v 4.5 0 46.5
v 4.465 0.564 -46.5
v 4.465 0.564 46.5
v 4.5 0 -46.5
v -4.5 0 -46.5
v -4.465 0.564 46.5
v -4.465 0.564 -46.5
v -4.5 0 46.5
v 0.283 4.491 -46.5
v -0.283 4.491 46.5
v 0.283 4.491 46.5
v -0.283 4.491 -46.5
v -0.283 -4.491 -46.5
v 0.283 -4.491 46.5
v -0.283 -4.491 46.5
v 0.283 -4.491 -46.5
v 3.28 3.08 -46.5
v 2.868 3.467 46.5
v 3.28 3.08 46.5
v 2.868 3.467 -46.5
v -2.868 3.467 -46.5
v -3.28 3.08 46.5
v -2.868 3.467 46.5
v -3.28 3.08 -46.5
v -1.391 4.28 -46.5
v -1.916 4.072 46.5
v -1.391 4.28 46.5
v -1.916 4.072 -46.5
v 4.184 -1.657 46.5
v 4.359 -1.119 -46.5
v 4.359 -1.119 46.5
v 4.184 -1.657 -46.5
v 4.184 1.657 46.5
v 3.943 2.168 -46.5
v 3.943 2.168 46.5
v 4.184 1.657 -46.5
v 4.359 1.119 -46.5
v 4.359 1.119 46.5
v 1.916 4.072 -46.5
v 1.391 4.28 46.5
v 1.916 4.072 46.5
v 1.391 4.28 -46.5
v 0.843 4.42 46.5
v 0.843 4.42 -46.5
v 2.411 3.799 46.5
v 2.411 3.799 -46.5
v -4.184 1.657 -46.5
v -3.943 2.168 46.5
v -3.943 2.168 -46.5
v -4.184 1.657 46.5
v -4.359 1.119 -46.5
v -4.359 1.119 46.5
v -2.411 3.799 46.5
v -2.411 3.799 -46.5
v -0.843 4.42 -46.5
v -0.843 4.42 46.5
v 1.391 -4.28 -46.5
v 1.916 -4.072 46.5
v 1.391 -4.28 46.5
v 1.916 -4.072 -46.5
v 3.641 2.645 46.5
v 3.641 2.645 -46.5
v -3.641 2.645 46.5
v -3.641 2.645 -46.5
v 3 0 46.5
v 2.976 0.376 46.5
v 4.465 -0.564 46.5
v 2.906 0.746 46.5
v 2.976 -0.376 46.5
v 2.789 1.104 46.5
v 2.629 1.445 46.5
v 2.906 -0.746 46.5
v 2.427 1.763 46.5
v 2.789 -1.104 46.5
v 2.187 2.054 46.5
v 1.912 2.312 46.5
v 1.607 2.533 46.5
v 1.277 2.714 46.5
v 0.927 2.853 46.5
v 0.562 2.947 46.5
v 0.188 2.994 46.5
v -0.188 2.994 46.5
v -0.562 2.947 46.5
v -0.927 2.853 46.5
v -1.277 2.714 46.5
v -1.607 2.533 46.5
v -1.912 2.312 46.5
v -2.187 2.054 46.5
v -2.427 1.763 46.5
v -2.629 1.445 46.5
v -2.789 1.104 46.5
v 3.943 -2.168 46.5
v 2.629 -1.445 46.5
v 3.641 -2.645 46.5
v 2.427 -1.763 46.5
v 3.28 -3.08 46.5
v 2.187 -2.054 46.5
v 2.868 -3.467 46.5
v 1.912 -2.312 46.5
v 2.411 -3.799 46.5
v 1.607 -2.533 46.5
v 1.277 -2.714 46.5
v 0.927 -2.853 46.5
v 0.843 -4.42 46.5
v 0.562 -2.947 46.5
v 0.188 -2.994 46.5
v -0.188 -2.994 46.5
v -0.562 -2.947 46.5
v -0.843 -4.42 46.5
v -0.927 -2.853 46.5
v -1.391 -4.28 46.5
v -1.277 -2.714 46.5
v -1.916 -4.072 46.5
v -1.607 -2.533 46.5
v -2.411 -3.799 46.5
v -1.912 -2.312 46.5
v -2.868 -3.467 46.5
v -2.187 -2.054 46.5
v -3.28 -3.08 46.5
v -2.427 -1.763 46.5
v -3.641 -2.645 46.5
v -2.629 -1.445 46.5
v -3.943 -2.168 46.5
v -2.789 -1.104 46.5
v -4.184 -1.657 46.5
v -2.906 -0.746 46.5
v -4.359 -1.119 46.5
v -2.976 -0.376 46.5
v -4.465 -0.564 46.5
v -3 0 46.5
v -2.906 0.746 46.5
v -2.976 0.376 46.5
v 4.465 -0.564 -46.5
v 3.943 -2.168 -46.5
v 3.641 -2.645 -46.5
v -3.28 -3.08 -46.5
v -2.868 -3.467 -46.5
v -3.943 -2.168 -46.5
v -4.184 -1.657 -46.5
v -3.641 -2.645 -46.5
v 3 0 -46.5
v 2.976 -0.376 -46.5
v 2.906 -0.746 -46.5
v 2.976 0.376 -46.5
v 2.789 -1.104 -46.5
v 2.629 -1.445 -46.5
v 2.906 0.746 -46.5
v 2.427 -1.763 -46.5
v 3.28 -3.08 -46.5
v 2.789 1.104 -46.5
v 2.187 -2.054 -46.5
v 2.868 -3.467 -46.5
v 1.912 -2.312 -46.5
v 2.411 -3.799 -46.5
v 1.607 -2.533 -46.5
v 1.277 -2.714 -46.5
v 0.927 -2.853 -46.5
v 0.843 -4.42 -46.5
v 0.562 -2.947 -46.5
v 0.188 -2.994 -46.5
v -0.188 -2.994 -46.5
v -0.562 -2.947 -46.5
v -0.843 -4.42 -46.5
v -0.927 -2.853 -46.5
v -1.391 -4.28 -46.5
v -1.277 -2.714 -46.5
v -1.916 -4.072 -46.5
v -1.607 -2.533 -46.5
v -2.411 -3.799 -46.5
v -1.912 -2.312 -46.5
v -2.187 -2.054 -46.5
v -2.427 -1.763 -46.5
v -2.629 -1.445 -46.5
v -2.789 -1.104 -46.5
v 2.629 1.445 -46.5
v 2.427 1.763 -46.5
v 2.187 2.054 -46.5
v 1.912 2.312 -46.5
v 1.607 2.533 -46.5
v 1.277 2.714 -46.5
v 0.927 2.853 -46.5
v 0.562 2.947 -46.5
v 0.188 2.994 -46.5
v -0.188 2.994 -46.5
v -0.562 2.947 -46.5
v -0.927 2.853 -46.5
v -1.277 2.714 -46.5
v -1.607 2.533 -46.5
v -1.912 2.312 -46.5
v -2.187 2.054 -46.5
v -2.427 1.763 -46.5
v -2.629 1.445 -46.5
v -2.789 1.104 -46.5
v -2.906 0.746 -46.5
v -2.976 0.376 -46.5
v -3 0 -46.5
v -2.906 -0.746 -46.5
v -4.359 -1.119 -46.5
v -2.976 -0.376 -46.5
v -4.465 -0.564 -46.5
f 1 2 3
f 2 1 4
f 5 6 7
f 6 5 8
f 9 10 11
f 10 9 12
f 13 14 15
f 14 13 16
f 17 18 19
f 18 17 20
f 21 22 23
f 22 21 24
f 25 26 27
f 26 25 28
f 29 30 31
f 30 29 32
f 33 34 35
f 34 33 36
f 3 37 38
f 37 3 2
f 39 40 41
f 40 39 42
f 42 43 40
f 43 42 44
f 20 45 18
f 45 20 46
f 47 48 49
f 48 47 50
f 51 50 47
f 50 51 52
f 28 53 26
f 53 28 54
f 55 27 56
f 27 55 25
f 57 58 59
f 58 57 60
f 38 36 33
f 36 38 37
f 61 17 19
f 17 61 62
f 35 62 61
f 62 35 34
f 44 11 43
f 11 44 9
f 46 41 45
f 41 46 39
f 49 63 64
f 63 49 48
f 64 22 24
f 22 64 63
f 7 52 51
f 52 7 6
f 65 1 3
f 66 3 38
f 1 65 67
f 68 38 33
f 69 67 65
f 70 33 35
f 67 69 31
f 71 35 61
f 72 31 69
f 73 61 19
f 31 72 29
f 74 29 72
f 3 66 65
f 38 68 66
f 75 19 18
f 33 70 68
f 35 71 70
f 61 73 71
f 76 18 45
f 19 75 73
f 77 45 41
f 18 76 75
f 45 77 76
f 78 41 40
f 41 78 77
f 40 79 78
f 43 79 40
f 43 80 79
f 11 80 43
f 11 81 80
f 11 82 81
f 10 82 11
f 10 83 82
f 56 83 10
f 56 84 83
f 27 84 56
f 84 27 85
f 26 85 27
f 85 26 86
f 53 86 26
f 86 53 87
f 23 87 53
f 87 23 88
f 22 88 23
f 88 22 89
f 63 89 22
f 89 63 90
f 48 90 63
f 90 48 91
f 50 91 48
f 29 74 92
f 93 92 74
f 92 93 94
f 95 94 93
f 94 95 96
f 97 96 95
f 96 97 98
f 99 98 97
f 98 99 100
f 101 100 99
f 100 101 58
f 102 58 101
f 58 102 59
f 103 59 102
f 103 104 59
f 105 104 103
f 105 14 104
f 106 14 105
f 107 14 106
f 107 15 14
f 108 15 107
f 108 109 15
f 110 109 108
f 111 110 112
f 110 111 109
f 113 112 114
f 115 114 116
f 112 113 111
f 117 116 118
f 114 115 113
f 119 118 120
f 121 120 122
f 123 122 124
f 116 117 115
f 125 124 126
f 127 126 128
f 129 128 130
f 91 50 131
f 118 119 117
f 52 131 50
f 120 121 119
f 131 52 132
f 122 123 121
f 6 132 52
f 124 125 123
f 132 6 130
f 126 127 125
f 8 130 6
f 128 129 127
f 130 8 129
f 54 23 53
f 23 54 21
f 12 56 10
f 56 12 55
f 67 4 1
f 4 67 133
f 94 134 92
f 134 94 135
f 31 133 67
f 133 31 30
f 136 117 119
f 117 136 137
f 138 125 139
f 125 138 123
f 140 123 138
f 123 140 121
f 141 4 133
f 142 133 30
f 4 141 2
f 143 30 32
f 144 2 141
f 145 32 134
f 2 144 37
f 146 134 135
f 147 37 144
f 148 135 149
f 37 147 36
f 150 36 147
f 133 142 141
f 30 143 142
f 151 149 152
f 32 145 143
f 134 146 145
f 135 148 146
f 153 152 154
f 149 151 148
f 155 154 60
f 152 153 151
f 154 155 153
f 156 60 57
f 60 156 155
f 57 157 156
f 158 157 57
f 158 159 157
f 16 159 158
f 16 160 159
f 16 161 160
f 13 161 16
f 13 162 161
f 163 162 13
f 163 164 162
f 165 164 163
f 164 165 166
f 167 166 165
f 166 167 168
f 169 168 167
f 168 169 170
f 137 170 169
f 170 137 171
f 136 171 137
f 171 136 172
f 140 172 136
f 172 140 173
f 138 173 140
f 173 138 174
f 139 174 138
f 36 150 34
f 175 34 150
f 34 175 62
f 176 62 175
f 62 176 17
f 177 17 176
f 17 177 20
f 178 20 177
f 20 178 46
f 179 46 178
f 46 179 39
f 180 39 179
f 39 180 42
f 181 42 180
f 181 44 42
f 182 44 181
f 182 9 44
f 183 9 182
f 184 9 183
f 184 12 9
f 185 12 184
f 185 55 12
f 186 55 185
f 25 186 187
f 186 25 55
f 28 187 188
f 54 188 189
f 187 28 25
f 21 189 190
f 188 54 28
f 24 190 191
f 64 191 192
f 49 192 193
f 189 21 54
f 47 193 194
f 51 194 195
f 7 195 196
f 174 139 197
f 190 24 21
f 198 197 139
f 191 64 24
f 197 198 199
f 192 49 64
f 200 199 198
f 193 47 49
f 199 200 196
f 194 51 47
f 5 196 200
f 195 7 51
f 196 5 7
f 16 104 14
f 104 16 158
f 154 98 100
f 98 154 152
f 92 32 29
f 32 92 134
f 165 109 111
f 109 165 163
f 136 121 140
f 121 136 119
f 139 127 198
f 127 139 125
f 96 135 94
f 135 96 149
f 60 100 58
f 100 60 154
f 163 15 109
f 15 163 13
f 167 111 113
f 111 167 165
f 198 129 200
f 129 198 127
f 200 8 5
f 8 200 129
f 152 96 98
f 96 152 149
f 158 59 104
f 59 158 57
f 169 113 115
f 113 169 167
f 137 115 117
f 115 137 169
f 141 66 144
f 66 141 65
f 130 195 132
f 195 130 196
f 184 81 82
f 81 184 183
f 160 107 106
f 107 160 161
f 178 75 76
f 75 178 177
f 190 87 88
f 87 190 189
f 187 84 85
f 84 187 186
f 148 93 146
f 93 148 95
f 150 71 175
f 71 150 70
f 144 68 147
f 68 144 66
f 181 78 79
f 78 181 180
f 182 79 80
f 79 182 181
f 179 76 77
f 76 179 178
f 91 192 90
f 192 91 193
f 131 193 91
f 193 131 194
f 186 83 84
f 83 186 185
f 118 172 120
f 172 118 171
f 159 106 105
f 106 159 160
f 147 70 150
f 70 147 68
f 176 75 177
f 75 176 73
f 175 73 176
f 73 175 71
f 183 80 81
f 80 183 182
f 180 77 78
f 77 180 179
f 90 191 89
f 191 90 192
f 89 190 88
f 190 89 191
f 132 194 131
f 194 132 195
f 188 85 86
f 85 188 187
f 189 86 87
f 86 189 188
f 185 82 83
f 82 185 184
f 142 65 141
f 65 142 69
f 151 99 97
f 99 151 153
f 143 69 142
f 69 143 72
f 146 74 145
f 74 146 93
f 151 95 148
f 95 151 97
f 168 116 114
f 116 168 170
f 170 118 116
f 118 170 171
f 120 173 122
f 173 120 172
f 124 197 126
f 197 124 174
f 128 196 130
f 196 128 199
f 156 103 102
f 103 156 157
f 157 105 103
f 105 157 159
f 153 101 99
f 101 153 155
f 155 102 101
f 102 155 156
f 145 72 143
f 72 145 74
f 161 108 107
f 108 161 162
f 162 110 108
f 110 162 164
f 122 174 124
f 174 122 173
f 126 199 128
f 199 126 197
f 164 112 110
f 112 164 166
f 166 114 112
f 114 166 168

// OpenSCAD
$fn = 50;


difference() {
	union() {
		translate(v = [0, 0, -46.5000000000]) {
			cylinder(h = 93, r = 4.5000000000);
		}
	}
	union() {
		translate(v = [0, 0, -100.0000000000]) {
			cylinder(h = 200, r = 3);
		}
	}
}
